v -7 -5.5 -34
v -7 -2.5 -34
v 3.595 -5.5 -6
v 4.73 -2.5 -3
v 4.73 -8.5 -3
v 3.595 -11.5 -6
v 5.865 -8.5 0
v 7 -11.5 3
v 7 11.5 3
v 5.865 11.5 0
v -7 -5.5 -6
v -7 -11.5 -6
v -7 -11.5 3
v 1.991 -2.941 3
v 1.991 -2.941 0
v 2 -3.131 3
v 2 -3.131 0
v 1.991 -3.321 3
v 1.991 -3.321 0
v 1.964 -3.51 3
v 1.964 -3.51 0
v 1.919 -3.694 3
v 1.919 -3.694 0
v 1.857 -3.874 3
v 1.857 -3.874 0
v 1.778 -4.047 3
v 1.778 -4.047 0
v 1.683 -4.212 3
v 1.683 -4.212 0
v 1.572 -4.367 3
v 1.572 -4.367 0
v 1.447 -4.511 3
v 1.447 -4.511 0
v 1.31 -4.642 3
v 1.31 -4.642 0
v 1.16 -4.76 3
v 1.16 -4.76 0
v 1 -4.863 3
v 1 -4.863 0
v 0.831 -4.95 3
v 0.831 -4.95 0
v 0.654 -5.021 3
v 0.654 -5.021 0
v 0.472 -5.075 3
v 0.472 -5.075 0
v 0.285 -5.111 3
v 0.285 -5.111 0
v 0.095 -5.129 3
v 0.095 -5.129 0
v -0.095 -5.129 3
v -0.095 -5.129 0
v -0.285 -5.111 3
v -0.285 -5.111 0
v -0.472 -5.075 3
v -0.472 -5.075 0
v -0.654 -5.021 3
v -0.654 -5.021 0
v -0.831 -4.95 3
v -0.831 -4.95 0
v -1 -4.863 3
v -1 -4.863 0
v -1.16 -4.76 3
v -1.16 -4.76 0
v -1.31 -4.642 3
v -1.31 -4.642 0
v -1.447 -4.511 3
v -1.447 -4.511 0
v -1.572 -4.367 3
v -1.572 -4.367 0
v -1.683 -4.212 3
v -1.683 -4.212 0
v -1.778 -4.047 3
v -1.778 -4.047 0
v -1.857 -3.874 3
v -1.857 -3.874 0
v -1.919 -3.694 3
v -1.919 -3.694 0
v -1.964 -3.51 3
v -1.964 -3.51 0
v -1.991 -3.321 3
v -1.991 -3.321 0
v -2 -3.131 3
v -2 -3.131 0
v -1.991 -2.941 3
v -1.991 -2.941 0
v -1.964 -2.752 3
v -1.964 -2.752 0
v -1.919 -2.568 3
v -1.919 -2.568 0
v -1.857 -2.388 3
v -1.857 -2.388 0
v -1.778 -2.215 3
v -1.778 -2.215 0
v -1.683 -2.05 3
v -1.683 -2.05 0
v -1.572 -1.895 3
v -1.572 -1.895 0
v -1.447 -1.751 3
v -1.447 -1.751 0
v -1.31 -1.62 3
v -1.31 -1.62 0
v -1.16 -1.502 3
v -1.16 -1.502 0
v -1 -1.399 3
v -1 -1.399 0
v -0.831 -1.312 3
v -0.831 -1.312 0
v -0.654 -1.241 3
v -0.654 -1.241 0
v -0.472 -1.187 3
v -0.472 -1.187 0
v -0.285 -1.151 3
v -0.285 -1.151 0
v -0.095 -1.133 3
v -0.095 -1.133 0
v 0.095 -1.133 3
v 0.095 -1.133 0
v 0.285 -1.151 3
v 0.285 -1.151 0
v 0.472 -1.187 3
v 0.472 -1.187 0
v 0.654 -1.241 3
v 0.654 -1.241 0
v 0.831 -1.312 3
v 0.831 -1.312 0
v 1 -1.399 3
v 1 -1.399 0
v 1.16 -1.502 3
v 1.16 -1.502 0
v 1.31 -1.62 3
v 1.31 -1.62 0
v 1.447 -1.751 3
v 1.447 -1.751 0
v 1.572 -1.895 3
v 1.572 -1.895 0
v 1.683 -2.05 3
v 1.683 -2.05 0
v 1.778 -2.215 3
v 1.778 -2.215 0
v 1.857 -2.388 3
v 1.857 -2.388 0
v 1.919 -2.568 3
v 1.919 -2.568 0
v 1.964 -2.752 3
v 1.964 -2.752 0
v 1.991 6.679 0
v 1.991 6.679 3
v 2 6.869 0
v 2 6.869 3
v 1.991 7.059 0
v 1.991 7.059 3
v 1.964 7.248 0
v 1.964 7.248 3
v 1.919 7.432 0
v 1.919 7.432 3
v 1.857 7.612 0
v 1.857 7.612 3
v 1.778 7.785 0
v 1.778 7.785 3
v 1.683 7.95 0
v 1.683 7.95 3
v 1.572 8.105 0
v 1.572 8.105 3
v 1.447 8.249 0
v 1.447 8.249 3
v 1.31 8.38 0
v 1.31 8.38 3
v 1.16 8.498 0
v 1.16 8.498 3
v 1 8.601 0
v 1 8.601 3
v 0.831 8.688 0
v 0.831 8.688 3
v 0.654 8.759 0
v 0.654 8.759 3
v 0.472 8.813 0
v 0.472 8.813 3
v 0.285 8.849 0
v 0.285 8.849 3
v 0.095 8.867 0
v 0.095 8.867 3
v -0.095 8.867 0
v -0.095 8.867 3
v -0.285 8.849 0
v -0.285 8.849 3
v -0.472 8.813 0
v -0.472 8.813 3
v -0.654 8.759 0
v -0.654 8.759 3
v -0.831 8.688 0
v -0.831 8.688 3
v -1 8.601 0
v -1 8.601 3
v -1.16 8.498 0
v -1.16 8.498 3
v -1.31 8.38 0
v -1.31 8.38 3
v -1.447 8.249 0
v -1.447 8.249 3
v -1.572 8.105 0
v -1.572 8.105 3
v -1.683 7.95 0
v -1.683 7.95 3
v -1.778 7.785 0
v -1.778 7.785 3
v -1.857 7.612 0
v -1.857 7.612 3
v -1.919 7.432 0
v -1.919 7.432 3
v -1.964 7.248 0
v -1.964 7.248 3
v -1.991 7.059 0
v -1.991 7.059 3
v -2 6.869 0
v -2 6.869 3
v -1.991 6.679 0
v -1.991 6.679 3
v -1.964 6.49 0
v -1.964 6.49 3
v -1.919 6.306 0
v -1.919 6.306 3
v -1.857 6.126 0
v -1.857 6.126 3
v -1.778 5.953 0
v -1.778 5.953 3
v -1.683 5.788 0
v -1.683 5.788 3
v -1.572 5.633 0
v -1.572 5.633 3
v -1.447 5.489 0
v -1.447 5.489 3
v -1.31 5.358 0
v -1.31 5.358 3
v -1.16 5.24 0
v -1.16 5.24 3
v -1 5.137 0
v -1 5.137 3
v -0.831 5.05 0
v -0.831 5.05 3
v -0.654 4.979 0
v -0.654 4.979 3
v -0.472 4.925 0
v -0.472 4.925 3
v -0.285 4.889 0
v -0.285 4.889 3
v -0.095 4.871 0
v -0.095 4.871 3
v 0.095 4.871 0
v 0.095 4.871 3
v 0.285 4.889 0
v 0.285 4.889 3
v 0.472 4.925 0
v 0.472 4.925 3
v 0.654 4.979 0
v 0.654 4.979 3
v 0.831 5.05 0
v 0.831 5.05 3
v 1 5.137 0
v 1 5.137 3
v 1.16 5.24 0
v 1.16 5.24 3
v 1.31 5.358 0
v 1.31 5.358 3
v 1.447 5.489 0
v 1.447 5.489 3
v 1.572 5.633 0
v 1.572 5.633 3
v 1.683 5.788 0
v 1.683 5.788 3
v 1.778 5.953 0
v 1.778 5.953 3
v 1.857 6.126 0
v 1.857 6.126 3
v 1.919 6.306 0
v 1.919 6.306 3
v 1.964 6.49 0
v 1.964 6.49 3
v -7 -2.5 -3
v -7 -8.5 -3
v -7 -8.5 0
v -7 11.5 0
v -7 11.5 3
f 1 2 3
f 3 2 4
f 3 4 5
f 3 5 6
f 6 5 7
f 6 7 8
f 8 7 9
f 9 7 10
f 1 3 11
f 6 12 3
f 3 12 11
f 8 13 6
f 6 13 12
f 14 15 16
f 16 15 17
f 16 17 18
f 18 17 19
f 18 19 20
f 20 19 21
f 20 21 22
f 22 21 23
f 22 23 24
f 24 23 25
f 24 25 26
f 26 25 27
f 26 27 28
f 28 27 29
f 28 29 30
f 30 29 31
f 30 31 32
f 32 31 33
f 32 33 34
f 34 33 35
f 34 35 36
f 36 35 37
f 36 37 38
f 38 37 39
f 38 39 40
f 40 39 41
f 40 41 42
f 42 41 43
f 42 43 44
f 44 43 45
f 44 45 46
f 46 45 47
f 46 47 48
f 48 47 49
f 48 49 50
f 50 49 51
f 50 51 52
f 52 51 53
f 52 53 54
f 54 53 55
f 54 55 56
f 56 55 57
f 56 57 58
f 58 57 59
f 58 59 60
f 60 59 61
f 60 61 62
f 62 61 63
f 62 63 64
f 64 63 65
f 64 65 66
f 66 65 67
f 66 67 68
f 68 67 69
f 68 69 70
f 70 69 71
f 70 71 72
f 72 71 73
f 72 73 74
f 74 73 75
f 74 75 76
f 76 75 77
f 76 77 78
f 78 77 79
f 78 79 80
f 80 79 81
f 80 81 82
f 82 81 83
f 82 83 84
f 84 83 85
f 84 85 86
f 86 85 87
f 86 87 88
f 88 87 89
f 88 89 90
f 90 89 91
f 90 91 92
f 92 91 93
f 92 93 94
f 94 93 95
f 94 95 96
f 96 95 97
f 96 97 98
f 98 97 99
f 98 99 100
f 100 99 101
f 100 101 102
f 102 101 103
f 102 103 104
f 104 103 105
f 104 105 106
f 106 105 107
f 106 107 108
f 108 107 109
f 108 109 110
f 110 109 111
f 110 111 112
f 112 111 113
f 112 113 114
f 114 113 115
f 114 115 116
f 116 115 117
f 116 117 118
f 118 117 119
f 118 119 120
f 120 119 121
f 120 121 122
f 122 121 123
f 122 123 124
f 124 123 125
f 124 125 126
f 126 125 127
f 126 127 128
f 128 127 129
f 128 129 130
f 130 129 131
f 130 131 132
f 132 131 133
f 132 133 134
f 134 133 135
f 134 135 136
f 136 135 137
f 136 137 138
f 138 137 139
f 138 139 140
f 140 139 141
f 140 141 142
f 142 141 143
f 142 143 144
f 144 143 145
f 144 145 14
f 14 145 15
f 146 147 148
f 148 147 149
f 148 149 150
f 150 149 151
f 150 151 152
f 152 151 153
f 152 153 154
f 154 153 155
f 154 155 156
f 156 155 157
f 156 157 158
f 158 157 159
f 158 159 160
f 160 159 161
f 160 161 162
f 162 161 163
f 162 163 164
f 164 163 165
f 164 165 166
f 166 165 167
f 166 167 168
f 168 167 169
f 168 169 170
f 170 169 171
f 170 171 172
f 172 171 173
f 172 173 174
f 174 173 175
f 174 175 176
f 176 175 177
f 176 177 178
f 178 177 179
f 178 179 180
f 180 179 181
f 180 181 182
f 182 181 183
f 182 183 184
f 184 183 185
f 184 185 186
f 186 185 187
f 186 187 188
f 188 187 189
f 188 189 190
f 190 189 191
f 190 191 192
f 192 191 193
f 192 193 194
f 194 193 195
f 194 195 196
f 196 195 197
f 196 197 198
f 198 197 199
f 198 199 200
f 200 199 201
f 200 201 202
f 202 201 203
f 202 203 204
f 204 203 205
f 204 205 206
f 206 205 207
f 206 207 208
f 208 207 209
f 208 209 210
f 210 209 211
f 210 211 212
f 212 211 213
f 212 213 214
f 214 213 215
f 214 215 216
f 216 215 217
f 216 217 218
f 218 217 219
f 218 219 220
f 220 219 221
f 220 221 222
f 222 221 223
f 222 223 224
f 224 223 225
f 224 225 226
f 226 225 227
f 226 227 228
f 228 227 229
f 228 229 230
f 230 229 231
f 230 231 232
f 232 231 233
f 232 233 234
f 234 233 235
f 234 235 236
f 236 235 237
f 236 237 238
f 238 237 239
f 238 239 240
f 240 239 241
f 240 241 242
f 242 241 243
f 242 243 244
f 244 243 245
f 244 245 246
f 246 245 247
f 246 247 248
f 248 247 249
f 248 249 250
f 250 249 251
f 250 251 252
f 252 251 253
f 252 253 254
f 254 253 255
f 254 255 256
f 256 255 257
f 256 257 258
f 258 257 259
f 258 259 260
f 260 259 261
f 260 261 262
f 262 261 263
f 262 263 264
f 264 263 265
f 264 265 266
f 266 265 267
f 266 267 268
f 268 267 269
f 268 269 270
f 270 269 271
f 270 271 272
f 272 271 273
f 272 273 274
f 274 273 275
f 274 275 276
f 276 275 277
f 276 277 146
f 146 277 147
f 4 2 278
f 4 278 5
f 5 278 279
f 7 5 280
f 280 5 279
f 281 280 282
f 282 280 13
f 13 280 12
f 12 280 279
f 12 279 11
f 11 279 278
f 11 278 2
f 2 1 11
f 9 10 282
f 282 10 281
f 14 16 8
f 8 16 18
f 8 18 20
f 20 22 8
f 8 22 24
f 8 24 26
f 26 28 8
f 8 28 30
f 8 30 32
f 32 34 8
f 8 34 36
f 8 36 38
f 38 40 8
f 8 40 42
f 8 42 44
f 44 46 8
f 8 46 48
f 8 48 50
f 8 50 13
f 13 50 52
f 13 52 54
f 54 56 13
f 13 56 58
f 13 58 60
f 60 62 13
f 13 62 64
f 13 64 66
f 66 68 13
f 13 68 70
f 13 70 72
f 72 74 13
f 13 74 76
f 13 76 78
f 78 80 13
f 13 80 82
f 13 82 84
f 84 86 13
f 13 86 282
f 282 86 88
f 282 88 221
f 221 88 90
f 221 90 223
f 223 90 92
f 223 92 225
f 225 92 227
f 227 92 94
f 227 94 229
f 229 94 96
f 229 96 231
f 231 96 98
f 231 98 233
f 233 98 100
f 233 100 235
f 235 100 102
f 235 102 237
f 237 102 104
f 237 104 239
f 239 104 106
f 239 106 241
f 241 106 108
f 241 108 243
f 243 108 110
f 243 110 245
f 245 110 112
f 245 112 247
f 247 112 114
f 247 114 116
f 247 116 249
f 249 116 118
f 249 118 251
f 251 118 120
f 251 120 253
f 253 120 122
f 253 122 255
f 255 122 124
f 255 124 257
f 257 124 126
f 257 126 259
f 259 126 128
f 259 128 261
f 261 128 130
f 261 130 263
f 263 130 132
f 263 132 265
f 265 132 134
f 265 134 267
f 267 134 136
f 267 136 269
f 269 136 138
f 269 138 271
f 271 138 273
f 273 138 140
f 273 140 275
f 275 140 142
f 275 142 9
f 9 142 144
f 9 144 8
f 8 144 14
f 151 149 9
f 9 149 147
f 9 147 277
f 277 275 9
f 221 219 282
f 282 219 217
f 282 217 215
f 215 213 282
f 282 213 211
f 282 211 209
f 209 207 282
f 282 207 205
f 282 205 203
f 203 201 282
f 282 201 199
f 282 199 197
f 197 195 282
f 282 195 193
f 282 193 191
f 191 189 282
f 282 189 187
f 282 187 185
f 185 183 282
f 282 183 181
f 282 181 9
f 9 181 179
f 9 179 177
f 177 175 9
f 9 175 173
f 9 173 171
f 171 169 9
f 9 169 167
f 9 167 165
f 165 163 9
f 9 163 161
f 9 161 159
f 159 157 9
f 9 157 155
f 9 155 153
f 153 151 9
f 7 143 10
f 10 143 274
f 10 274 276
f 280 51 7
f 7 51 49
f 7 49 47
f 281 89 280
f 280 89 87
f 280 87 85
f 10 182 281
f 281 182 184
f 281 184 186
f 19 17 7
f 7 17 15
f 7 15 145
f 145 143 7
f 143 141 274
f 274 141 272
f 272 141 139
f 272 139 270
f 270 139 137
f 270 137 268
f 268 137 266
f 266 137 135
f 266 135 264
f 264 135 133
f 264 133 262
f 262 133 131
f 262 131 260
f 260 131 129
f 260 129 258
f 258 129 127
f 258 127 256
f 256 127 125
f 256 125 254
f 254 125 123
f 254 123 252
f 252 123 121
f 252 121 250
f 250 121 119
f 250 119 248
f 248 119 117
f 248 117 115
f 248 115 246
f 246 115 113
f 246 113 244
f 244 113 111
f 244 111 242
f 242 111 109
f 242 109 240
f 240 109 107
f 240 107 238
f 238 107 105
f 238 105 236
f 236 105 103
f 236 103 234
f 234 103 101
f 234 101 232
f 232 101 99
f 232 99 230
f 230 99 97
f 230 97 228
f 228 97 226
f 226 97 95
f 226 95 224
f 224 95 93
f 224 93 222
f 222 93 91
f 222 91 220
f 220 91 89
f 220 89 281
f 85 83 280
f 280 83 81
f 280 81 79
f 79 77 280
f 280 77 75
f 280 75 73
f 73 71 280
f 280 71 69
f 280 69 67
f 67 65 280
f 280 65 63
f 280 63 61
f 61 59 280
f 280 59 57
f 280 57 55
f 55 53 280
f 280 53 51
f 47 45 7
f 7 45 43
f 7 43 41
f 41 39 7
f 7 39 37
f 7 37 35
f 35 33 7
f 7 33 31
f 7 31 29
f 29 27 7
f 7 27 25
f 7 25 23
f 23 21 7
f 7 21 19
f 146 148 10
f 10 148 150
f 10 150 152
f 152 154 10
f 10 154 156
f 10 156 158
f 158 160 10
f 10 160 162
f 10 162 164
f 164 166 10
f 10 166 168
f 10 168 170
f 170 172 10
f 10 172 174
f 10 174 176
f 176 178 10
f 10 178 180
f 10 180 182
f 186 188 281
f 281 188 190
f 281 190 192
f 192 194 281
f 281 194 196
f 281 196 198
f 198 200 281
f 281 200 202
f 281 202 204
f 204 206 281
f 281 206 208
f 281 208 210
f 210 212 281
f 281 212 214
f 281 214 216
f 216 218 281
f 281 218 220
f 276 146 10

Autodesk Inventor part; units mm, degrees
ref_plane "YZ Plane" through (0, 0, 0) normal (1, 0, 0) x (0, 1, 0)
ref_plane "XZ Plane" through (0, 0, 0) normal (0, 1, 0) x (-1, 0, 0)
ref_plane "XY Plane" through (0, 0, 0) normal (0, 0, 1) x (1, 0, 0)
sketch "Эскиз1" plane through (0, 0, 0) normal (0, 0, 1) x (1, 0, 0)
  line L0 (-7, -11.5) -> (7, -11.5)
  line L1 (7, -11.5) -> (7, 11.5)
  line L2 (7, 11.5) -> (-7, 11.5)
  line L3 (-7, 11.5) -> (-7, -11.5)
  line L4 (-7, -11.5) -> (7, 11.5) construction
  line L5 (7, -11.5) -> (-7, 11.5) construction
  point P0 (0, 0)
  dimension "d0" = 14
  dimension "d1" = 23
extrude "Выдавливание1" add sketch "Эскиз1" along normal blind 3
sketch "Эскиз2" plane through (0, 0, 0) normal (0, 0, -1) x (-1, 0, 0)
  line L0 (7, -11.5) -> (-7, -11.5) projected
  line L1 (7, 11.5) -> (7, -11.5) projected
  line L2 (-7, 11.5) -> (7, 11.5) projected
  line L3 (-7, -11.5) -> (-7, 11.5) projected
  line L4 (7, -11.5) -> (7, -8.5)
  line L5 (7, 11.5) -> (7, -11.5) construction
  line L6 (7, -11.5) -> (-7, -11.5) projected
  line L7 (7, -8.5) -> (-7, -8.5)
  line L8 (-7, -8.5) -> (-7, -11.5)
  line L9 (-7, -11.5) -> (7, -11.5)
  line L10 (7, -11.5) -> (7, -8.5)
  point P0 (0, 0)
  dimension "d4" = 3
extrude "Выдавливание2" add sketch "Эскиз2" along normal blind 6 contours L0 L3 L7 L1
sketch "Эскиз3" plane through (-7, -8.5, 0) normal (0, 1, 0) x (1, 0, 0)
  line L0 (14, 6) -> (0, 6) projected
  line L1 (14, 0) -> (0, 0) projected
  line L2 (14, 0) -> (14, 6) projected
  line L3 (0, 6) -> (14, 6) projected
  line L4 (0, 0) -> (0, 6) projected
  line L5 (14, 6) -> (14, 3) construction
  line L6 (14, 0) -> (14, 6) construction
  line L7 (14, 3) -> (0, 3)
  line L8 (0, 3) -> (0, 6)
  line L9 (0, 6) -> (14, 6)
  line L10 (14, 6) -> (14, 3)
  point P0 (7, 0)
  dimension "d7" = 3
extrude "Выдавливание3" add sketch "Эскиз3" along normal blind 6 contours L2 L7 L4 L0
sketch "Эскиз4" plane through (0, 0, -6) normal (0, 0, -1) x (-1, 0, 0)
  line L0 (-7, -11.5) -> (7, -11.5) projected
  line L1 (7, -11.5) -> (7, -2.5) projected
  line L2 (-7, -2.5) -> (7, -2.5) projected
  line L3 (-7, -11.5) -> (-7, -2.5) projected
  line L4 (-7, -2.5) -> (7, -2.5) construction
  line L5 (-7, -2.5) -> (-7, -5.5) construction
  line L6 (-7, -5.5) -> (7, -5.5)
  line L7 (7, -5.5) -> (7, -2.5)
  line L8 (7, -2.5) -> (-7, -2.5)
  line L9 (-7, -2.5) -> (-7, -5.5)
  point P0 (0, 0)
  dimension "d10" = 3
extrude "Выдавливание4" add sketch "Эскиз4" along normal blind 28 contours L3 L2 L1 L6
sketch "Эскиз6" plane through (0, 0, 3) normal (0, 0, 1) x (1, 0, 0)
  line L0 (-7, -11.5) -> (7, -11.5) projected
  line L1 (7, -11.5) -> (7, 11.5) projected
  line L2 (7, 11.5) -> (-7, 11.5) projected
  line L3 (-7, 0) -> (7, 0) construction
  line L4 (7, -8.5) -> (7, 11.5) construction
  line L5 (7, 11.5) -> (-7, 11.5) construction
  line L6 (0, 11.5) -> (0, -11.5) construction
  line L7 (0, 0) -> (0, 11.5) construction
  line L8 (0, 5.75) -> (-7, 5.75) construction
  line L9 (-7, 10) -> (-7, -10) construction
  line L10 (0, 5.75) -> (7, 5.75) construction
  line L11 (0, -11.5) -> (0, 0) construction
  line L12 (0, -5.75) -> (7, -5.75) construction
  line L13 (-7, 11.5) -> (-7, -11.5) projected
  line L14 (0, -11.5) -> (0, -3.131) construction
  line L15 (0, -3.131) -> (0, 6.869) construction
  circle A0 centre (0, -3.131) radius 2
  circle A1 centre (0, 6.869) radius 2
  point P0 (-5.8649, 10)
  dimension "d21" = 8.369
  dimension "d22" = 10
  dimension "d23" = 4
  dimension "d24" = 4
extrude "Выдавливание6" cut sketch "Эскиз6" against normal up to next contours A0 | A1
sketch "Эскиз7" plane through (-7, -11.5, 3) normal (0, -1, 0) x (1, 0, 0)
  line L0 (14, -9) -> (14, 0) projected
  line L1 (0, 0) -> (14, 0) projected
  line L2 (0, 0) -> (0, -9) projected
  line L3 (14, -9) -> (0, -9) projected
  line L4 (0, -9) -> (14, -9) projected
  line L5 (0, -9) -> (0, -37) projected
  line L6 (14, -37) -> (0, -37) projected
  line L7 (14, -9) -> (14, -37) projected
  line L8 (0, 0) -> (14, 0) projected
  line L9 (0, -6) -> (0, -37) projected
  line L10 (14, 0) -> (0, -37)
  line L11 (0, -37) -> (14, -37)
  line L12 (14, -9) -> (14, 0) projected
  line L13 (14, 0) -> (14, -37)
  point P0 (7, -3)
extrude "Выдавливание7" cut sketch "Эскиз7" against normal blind 28 contours L3 L10 L0 | L7 L6 L10 L3
properties part number "Side control right"
